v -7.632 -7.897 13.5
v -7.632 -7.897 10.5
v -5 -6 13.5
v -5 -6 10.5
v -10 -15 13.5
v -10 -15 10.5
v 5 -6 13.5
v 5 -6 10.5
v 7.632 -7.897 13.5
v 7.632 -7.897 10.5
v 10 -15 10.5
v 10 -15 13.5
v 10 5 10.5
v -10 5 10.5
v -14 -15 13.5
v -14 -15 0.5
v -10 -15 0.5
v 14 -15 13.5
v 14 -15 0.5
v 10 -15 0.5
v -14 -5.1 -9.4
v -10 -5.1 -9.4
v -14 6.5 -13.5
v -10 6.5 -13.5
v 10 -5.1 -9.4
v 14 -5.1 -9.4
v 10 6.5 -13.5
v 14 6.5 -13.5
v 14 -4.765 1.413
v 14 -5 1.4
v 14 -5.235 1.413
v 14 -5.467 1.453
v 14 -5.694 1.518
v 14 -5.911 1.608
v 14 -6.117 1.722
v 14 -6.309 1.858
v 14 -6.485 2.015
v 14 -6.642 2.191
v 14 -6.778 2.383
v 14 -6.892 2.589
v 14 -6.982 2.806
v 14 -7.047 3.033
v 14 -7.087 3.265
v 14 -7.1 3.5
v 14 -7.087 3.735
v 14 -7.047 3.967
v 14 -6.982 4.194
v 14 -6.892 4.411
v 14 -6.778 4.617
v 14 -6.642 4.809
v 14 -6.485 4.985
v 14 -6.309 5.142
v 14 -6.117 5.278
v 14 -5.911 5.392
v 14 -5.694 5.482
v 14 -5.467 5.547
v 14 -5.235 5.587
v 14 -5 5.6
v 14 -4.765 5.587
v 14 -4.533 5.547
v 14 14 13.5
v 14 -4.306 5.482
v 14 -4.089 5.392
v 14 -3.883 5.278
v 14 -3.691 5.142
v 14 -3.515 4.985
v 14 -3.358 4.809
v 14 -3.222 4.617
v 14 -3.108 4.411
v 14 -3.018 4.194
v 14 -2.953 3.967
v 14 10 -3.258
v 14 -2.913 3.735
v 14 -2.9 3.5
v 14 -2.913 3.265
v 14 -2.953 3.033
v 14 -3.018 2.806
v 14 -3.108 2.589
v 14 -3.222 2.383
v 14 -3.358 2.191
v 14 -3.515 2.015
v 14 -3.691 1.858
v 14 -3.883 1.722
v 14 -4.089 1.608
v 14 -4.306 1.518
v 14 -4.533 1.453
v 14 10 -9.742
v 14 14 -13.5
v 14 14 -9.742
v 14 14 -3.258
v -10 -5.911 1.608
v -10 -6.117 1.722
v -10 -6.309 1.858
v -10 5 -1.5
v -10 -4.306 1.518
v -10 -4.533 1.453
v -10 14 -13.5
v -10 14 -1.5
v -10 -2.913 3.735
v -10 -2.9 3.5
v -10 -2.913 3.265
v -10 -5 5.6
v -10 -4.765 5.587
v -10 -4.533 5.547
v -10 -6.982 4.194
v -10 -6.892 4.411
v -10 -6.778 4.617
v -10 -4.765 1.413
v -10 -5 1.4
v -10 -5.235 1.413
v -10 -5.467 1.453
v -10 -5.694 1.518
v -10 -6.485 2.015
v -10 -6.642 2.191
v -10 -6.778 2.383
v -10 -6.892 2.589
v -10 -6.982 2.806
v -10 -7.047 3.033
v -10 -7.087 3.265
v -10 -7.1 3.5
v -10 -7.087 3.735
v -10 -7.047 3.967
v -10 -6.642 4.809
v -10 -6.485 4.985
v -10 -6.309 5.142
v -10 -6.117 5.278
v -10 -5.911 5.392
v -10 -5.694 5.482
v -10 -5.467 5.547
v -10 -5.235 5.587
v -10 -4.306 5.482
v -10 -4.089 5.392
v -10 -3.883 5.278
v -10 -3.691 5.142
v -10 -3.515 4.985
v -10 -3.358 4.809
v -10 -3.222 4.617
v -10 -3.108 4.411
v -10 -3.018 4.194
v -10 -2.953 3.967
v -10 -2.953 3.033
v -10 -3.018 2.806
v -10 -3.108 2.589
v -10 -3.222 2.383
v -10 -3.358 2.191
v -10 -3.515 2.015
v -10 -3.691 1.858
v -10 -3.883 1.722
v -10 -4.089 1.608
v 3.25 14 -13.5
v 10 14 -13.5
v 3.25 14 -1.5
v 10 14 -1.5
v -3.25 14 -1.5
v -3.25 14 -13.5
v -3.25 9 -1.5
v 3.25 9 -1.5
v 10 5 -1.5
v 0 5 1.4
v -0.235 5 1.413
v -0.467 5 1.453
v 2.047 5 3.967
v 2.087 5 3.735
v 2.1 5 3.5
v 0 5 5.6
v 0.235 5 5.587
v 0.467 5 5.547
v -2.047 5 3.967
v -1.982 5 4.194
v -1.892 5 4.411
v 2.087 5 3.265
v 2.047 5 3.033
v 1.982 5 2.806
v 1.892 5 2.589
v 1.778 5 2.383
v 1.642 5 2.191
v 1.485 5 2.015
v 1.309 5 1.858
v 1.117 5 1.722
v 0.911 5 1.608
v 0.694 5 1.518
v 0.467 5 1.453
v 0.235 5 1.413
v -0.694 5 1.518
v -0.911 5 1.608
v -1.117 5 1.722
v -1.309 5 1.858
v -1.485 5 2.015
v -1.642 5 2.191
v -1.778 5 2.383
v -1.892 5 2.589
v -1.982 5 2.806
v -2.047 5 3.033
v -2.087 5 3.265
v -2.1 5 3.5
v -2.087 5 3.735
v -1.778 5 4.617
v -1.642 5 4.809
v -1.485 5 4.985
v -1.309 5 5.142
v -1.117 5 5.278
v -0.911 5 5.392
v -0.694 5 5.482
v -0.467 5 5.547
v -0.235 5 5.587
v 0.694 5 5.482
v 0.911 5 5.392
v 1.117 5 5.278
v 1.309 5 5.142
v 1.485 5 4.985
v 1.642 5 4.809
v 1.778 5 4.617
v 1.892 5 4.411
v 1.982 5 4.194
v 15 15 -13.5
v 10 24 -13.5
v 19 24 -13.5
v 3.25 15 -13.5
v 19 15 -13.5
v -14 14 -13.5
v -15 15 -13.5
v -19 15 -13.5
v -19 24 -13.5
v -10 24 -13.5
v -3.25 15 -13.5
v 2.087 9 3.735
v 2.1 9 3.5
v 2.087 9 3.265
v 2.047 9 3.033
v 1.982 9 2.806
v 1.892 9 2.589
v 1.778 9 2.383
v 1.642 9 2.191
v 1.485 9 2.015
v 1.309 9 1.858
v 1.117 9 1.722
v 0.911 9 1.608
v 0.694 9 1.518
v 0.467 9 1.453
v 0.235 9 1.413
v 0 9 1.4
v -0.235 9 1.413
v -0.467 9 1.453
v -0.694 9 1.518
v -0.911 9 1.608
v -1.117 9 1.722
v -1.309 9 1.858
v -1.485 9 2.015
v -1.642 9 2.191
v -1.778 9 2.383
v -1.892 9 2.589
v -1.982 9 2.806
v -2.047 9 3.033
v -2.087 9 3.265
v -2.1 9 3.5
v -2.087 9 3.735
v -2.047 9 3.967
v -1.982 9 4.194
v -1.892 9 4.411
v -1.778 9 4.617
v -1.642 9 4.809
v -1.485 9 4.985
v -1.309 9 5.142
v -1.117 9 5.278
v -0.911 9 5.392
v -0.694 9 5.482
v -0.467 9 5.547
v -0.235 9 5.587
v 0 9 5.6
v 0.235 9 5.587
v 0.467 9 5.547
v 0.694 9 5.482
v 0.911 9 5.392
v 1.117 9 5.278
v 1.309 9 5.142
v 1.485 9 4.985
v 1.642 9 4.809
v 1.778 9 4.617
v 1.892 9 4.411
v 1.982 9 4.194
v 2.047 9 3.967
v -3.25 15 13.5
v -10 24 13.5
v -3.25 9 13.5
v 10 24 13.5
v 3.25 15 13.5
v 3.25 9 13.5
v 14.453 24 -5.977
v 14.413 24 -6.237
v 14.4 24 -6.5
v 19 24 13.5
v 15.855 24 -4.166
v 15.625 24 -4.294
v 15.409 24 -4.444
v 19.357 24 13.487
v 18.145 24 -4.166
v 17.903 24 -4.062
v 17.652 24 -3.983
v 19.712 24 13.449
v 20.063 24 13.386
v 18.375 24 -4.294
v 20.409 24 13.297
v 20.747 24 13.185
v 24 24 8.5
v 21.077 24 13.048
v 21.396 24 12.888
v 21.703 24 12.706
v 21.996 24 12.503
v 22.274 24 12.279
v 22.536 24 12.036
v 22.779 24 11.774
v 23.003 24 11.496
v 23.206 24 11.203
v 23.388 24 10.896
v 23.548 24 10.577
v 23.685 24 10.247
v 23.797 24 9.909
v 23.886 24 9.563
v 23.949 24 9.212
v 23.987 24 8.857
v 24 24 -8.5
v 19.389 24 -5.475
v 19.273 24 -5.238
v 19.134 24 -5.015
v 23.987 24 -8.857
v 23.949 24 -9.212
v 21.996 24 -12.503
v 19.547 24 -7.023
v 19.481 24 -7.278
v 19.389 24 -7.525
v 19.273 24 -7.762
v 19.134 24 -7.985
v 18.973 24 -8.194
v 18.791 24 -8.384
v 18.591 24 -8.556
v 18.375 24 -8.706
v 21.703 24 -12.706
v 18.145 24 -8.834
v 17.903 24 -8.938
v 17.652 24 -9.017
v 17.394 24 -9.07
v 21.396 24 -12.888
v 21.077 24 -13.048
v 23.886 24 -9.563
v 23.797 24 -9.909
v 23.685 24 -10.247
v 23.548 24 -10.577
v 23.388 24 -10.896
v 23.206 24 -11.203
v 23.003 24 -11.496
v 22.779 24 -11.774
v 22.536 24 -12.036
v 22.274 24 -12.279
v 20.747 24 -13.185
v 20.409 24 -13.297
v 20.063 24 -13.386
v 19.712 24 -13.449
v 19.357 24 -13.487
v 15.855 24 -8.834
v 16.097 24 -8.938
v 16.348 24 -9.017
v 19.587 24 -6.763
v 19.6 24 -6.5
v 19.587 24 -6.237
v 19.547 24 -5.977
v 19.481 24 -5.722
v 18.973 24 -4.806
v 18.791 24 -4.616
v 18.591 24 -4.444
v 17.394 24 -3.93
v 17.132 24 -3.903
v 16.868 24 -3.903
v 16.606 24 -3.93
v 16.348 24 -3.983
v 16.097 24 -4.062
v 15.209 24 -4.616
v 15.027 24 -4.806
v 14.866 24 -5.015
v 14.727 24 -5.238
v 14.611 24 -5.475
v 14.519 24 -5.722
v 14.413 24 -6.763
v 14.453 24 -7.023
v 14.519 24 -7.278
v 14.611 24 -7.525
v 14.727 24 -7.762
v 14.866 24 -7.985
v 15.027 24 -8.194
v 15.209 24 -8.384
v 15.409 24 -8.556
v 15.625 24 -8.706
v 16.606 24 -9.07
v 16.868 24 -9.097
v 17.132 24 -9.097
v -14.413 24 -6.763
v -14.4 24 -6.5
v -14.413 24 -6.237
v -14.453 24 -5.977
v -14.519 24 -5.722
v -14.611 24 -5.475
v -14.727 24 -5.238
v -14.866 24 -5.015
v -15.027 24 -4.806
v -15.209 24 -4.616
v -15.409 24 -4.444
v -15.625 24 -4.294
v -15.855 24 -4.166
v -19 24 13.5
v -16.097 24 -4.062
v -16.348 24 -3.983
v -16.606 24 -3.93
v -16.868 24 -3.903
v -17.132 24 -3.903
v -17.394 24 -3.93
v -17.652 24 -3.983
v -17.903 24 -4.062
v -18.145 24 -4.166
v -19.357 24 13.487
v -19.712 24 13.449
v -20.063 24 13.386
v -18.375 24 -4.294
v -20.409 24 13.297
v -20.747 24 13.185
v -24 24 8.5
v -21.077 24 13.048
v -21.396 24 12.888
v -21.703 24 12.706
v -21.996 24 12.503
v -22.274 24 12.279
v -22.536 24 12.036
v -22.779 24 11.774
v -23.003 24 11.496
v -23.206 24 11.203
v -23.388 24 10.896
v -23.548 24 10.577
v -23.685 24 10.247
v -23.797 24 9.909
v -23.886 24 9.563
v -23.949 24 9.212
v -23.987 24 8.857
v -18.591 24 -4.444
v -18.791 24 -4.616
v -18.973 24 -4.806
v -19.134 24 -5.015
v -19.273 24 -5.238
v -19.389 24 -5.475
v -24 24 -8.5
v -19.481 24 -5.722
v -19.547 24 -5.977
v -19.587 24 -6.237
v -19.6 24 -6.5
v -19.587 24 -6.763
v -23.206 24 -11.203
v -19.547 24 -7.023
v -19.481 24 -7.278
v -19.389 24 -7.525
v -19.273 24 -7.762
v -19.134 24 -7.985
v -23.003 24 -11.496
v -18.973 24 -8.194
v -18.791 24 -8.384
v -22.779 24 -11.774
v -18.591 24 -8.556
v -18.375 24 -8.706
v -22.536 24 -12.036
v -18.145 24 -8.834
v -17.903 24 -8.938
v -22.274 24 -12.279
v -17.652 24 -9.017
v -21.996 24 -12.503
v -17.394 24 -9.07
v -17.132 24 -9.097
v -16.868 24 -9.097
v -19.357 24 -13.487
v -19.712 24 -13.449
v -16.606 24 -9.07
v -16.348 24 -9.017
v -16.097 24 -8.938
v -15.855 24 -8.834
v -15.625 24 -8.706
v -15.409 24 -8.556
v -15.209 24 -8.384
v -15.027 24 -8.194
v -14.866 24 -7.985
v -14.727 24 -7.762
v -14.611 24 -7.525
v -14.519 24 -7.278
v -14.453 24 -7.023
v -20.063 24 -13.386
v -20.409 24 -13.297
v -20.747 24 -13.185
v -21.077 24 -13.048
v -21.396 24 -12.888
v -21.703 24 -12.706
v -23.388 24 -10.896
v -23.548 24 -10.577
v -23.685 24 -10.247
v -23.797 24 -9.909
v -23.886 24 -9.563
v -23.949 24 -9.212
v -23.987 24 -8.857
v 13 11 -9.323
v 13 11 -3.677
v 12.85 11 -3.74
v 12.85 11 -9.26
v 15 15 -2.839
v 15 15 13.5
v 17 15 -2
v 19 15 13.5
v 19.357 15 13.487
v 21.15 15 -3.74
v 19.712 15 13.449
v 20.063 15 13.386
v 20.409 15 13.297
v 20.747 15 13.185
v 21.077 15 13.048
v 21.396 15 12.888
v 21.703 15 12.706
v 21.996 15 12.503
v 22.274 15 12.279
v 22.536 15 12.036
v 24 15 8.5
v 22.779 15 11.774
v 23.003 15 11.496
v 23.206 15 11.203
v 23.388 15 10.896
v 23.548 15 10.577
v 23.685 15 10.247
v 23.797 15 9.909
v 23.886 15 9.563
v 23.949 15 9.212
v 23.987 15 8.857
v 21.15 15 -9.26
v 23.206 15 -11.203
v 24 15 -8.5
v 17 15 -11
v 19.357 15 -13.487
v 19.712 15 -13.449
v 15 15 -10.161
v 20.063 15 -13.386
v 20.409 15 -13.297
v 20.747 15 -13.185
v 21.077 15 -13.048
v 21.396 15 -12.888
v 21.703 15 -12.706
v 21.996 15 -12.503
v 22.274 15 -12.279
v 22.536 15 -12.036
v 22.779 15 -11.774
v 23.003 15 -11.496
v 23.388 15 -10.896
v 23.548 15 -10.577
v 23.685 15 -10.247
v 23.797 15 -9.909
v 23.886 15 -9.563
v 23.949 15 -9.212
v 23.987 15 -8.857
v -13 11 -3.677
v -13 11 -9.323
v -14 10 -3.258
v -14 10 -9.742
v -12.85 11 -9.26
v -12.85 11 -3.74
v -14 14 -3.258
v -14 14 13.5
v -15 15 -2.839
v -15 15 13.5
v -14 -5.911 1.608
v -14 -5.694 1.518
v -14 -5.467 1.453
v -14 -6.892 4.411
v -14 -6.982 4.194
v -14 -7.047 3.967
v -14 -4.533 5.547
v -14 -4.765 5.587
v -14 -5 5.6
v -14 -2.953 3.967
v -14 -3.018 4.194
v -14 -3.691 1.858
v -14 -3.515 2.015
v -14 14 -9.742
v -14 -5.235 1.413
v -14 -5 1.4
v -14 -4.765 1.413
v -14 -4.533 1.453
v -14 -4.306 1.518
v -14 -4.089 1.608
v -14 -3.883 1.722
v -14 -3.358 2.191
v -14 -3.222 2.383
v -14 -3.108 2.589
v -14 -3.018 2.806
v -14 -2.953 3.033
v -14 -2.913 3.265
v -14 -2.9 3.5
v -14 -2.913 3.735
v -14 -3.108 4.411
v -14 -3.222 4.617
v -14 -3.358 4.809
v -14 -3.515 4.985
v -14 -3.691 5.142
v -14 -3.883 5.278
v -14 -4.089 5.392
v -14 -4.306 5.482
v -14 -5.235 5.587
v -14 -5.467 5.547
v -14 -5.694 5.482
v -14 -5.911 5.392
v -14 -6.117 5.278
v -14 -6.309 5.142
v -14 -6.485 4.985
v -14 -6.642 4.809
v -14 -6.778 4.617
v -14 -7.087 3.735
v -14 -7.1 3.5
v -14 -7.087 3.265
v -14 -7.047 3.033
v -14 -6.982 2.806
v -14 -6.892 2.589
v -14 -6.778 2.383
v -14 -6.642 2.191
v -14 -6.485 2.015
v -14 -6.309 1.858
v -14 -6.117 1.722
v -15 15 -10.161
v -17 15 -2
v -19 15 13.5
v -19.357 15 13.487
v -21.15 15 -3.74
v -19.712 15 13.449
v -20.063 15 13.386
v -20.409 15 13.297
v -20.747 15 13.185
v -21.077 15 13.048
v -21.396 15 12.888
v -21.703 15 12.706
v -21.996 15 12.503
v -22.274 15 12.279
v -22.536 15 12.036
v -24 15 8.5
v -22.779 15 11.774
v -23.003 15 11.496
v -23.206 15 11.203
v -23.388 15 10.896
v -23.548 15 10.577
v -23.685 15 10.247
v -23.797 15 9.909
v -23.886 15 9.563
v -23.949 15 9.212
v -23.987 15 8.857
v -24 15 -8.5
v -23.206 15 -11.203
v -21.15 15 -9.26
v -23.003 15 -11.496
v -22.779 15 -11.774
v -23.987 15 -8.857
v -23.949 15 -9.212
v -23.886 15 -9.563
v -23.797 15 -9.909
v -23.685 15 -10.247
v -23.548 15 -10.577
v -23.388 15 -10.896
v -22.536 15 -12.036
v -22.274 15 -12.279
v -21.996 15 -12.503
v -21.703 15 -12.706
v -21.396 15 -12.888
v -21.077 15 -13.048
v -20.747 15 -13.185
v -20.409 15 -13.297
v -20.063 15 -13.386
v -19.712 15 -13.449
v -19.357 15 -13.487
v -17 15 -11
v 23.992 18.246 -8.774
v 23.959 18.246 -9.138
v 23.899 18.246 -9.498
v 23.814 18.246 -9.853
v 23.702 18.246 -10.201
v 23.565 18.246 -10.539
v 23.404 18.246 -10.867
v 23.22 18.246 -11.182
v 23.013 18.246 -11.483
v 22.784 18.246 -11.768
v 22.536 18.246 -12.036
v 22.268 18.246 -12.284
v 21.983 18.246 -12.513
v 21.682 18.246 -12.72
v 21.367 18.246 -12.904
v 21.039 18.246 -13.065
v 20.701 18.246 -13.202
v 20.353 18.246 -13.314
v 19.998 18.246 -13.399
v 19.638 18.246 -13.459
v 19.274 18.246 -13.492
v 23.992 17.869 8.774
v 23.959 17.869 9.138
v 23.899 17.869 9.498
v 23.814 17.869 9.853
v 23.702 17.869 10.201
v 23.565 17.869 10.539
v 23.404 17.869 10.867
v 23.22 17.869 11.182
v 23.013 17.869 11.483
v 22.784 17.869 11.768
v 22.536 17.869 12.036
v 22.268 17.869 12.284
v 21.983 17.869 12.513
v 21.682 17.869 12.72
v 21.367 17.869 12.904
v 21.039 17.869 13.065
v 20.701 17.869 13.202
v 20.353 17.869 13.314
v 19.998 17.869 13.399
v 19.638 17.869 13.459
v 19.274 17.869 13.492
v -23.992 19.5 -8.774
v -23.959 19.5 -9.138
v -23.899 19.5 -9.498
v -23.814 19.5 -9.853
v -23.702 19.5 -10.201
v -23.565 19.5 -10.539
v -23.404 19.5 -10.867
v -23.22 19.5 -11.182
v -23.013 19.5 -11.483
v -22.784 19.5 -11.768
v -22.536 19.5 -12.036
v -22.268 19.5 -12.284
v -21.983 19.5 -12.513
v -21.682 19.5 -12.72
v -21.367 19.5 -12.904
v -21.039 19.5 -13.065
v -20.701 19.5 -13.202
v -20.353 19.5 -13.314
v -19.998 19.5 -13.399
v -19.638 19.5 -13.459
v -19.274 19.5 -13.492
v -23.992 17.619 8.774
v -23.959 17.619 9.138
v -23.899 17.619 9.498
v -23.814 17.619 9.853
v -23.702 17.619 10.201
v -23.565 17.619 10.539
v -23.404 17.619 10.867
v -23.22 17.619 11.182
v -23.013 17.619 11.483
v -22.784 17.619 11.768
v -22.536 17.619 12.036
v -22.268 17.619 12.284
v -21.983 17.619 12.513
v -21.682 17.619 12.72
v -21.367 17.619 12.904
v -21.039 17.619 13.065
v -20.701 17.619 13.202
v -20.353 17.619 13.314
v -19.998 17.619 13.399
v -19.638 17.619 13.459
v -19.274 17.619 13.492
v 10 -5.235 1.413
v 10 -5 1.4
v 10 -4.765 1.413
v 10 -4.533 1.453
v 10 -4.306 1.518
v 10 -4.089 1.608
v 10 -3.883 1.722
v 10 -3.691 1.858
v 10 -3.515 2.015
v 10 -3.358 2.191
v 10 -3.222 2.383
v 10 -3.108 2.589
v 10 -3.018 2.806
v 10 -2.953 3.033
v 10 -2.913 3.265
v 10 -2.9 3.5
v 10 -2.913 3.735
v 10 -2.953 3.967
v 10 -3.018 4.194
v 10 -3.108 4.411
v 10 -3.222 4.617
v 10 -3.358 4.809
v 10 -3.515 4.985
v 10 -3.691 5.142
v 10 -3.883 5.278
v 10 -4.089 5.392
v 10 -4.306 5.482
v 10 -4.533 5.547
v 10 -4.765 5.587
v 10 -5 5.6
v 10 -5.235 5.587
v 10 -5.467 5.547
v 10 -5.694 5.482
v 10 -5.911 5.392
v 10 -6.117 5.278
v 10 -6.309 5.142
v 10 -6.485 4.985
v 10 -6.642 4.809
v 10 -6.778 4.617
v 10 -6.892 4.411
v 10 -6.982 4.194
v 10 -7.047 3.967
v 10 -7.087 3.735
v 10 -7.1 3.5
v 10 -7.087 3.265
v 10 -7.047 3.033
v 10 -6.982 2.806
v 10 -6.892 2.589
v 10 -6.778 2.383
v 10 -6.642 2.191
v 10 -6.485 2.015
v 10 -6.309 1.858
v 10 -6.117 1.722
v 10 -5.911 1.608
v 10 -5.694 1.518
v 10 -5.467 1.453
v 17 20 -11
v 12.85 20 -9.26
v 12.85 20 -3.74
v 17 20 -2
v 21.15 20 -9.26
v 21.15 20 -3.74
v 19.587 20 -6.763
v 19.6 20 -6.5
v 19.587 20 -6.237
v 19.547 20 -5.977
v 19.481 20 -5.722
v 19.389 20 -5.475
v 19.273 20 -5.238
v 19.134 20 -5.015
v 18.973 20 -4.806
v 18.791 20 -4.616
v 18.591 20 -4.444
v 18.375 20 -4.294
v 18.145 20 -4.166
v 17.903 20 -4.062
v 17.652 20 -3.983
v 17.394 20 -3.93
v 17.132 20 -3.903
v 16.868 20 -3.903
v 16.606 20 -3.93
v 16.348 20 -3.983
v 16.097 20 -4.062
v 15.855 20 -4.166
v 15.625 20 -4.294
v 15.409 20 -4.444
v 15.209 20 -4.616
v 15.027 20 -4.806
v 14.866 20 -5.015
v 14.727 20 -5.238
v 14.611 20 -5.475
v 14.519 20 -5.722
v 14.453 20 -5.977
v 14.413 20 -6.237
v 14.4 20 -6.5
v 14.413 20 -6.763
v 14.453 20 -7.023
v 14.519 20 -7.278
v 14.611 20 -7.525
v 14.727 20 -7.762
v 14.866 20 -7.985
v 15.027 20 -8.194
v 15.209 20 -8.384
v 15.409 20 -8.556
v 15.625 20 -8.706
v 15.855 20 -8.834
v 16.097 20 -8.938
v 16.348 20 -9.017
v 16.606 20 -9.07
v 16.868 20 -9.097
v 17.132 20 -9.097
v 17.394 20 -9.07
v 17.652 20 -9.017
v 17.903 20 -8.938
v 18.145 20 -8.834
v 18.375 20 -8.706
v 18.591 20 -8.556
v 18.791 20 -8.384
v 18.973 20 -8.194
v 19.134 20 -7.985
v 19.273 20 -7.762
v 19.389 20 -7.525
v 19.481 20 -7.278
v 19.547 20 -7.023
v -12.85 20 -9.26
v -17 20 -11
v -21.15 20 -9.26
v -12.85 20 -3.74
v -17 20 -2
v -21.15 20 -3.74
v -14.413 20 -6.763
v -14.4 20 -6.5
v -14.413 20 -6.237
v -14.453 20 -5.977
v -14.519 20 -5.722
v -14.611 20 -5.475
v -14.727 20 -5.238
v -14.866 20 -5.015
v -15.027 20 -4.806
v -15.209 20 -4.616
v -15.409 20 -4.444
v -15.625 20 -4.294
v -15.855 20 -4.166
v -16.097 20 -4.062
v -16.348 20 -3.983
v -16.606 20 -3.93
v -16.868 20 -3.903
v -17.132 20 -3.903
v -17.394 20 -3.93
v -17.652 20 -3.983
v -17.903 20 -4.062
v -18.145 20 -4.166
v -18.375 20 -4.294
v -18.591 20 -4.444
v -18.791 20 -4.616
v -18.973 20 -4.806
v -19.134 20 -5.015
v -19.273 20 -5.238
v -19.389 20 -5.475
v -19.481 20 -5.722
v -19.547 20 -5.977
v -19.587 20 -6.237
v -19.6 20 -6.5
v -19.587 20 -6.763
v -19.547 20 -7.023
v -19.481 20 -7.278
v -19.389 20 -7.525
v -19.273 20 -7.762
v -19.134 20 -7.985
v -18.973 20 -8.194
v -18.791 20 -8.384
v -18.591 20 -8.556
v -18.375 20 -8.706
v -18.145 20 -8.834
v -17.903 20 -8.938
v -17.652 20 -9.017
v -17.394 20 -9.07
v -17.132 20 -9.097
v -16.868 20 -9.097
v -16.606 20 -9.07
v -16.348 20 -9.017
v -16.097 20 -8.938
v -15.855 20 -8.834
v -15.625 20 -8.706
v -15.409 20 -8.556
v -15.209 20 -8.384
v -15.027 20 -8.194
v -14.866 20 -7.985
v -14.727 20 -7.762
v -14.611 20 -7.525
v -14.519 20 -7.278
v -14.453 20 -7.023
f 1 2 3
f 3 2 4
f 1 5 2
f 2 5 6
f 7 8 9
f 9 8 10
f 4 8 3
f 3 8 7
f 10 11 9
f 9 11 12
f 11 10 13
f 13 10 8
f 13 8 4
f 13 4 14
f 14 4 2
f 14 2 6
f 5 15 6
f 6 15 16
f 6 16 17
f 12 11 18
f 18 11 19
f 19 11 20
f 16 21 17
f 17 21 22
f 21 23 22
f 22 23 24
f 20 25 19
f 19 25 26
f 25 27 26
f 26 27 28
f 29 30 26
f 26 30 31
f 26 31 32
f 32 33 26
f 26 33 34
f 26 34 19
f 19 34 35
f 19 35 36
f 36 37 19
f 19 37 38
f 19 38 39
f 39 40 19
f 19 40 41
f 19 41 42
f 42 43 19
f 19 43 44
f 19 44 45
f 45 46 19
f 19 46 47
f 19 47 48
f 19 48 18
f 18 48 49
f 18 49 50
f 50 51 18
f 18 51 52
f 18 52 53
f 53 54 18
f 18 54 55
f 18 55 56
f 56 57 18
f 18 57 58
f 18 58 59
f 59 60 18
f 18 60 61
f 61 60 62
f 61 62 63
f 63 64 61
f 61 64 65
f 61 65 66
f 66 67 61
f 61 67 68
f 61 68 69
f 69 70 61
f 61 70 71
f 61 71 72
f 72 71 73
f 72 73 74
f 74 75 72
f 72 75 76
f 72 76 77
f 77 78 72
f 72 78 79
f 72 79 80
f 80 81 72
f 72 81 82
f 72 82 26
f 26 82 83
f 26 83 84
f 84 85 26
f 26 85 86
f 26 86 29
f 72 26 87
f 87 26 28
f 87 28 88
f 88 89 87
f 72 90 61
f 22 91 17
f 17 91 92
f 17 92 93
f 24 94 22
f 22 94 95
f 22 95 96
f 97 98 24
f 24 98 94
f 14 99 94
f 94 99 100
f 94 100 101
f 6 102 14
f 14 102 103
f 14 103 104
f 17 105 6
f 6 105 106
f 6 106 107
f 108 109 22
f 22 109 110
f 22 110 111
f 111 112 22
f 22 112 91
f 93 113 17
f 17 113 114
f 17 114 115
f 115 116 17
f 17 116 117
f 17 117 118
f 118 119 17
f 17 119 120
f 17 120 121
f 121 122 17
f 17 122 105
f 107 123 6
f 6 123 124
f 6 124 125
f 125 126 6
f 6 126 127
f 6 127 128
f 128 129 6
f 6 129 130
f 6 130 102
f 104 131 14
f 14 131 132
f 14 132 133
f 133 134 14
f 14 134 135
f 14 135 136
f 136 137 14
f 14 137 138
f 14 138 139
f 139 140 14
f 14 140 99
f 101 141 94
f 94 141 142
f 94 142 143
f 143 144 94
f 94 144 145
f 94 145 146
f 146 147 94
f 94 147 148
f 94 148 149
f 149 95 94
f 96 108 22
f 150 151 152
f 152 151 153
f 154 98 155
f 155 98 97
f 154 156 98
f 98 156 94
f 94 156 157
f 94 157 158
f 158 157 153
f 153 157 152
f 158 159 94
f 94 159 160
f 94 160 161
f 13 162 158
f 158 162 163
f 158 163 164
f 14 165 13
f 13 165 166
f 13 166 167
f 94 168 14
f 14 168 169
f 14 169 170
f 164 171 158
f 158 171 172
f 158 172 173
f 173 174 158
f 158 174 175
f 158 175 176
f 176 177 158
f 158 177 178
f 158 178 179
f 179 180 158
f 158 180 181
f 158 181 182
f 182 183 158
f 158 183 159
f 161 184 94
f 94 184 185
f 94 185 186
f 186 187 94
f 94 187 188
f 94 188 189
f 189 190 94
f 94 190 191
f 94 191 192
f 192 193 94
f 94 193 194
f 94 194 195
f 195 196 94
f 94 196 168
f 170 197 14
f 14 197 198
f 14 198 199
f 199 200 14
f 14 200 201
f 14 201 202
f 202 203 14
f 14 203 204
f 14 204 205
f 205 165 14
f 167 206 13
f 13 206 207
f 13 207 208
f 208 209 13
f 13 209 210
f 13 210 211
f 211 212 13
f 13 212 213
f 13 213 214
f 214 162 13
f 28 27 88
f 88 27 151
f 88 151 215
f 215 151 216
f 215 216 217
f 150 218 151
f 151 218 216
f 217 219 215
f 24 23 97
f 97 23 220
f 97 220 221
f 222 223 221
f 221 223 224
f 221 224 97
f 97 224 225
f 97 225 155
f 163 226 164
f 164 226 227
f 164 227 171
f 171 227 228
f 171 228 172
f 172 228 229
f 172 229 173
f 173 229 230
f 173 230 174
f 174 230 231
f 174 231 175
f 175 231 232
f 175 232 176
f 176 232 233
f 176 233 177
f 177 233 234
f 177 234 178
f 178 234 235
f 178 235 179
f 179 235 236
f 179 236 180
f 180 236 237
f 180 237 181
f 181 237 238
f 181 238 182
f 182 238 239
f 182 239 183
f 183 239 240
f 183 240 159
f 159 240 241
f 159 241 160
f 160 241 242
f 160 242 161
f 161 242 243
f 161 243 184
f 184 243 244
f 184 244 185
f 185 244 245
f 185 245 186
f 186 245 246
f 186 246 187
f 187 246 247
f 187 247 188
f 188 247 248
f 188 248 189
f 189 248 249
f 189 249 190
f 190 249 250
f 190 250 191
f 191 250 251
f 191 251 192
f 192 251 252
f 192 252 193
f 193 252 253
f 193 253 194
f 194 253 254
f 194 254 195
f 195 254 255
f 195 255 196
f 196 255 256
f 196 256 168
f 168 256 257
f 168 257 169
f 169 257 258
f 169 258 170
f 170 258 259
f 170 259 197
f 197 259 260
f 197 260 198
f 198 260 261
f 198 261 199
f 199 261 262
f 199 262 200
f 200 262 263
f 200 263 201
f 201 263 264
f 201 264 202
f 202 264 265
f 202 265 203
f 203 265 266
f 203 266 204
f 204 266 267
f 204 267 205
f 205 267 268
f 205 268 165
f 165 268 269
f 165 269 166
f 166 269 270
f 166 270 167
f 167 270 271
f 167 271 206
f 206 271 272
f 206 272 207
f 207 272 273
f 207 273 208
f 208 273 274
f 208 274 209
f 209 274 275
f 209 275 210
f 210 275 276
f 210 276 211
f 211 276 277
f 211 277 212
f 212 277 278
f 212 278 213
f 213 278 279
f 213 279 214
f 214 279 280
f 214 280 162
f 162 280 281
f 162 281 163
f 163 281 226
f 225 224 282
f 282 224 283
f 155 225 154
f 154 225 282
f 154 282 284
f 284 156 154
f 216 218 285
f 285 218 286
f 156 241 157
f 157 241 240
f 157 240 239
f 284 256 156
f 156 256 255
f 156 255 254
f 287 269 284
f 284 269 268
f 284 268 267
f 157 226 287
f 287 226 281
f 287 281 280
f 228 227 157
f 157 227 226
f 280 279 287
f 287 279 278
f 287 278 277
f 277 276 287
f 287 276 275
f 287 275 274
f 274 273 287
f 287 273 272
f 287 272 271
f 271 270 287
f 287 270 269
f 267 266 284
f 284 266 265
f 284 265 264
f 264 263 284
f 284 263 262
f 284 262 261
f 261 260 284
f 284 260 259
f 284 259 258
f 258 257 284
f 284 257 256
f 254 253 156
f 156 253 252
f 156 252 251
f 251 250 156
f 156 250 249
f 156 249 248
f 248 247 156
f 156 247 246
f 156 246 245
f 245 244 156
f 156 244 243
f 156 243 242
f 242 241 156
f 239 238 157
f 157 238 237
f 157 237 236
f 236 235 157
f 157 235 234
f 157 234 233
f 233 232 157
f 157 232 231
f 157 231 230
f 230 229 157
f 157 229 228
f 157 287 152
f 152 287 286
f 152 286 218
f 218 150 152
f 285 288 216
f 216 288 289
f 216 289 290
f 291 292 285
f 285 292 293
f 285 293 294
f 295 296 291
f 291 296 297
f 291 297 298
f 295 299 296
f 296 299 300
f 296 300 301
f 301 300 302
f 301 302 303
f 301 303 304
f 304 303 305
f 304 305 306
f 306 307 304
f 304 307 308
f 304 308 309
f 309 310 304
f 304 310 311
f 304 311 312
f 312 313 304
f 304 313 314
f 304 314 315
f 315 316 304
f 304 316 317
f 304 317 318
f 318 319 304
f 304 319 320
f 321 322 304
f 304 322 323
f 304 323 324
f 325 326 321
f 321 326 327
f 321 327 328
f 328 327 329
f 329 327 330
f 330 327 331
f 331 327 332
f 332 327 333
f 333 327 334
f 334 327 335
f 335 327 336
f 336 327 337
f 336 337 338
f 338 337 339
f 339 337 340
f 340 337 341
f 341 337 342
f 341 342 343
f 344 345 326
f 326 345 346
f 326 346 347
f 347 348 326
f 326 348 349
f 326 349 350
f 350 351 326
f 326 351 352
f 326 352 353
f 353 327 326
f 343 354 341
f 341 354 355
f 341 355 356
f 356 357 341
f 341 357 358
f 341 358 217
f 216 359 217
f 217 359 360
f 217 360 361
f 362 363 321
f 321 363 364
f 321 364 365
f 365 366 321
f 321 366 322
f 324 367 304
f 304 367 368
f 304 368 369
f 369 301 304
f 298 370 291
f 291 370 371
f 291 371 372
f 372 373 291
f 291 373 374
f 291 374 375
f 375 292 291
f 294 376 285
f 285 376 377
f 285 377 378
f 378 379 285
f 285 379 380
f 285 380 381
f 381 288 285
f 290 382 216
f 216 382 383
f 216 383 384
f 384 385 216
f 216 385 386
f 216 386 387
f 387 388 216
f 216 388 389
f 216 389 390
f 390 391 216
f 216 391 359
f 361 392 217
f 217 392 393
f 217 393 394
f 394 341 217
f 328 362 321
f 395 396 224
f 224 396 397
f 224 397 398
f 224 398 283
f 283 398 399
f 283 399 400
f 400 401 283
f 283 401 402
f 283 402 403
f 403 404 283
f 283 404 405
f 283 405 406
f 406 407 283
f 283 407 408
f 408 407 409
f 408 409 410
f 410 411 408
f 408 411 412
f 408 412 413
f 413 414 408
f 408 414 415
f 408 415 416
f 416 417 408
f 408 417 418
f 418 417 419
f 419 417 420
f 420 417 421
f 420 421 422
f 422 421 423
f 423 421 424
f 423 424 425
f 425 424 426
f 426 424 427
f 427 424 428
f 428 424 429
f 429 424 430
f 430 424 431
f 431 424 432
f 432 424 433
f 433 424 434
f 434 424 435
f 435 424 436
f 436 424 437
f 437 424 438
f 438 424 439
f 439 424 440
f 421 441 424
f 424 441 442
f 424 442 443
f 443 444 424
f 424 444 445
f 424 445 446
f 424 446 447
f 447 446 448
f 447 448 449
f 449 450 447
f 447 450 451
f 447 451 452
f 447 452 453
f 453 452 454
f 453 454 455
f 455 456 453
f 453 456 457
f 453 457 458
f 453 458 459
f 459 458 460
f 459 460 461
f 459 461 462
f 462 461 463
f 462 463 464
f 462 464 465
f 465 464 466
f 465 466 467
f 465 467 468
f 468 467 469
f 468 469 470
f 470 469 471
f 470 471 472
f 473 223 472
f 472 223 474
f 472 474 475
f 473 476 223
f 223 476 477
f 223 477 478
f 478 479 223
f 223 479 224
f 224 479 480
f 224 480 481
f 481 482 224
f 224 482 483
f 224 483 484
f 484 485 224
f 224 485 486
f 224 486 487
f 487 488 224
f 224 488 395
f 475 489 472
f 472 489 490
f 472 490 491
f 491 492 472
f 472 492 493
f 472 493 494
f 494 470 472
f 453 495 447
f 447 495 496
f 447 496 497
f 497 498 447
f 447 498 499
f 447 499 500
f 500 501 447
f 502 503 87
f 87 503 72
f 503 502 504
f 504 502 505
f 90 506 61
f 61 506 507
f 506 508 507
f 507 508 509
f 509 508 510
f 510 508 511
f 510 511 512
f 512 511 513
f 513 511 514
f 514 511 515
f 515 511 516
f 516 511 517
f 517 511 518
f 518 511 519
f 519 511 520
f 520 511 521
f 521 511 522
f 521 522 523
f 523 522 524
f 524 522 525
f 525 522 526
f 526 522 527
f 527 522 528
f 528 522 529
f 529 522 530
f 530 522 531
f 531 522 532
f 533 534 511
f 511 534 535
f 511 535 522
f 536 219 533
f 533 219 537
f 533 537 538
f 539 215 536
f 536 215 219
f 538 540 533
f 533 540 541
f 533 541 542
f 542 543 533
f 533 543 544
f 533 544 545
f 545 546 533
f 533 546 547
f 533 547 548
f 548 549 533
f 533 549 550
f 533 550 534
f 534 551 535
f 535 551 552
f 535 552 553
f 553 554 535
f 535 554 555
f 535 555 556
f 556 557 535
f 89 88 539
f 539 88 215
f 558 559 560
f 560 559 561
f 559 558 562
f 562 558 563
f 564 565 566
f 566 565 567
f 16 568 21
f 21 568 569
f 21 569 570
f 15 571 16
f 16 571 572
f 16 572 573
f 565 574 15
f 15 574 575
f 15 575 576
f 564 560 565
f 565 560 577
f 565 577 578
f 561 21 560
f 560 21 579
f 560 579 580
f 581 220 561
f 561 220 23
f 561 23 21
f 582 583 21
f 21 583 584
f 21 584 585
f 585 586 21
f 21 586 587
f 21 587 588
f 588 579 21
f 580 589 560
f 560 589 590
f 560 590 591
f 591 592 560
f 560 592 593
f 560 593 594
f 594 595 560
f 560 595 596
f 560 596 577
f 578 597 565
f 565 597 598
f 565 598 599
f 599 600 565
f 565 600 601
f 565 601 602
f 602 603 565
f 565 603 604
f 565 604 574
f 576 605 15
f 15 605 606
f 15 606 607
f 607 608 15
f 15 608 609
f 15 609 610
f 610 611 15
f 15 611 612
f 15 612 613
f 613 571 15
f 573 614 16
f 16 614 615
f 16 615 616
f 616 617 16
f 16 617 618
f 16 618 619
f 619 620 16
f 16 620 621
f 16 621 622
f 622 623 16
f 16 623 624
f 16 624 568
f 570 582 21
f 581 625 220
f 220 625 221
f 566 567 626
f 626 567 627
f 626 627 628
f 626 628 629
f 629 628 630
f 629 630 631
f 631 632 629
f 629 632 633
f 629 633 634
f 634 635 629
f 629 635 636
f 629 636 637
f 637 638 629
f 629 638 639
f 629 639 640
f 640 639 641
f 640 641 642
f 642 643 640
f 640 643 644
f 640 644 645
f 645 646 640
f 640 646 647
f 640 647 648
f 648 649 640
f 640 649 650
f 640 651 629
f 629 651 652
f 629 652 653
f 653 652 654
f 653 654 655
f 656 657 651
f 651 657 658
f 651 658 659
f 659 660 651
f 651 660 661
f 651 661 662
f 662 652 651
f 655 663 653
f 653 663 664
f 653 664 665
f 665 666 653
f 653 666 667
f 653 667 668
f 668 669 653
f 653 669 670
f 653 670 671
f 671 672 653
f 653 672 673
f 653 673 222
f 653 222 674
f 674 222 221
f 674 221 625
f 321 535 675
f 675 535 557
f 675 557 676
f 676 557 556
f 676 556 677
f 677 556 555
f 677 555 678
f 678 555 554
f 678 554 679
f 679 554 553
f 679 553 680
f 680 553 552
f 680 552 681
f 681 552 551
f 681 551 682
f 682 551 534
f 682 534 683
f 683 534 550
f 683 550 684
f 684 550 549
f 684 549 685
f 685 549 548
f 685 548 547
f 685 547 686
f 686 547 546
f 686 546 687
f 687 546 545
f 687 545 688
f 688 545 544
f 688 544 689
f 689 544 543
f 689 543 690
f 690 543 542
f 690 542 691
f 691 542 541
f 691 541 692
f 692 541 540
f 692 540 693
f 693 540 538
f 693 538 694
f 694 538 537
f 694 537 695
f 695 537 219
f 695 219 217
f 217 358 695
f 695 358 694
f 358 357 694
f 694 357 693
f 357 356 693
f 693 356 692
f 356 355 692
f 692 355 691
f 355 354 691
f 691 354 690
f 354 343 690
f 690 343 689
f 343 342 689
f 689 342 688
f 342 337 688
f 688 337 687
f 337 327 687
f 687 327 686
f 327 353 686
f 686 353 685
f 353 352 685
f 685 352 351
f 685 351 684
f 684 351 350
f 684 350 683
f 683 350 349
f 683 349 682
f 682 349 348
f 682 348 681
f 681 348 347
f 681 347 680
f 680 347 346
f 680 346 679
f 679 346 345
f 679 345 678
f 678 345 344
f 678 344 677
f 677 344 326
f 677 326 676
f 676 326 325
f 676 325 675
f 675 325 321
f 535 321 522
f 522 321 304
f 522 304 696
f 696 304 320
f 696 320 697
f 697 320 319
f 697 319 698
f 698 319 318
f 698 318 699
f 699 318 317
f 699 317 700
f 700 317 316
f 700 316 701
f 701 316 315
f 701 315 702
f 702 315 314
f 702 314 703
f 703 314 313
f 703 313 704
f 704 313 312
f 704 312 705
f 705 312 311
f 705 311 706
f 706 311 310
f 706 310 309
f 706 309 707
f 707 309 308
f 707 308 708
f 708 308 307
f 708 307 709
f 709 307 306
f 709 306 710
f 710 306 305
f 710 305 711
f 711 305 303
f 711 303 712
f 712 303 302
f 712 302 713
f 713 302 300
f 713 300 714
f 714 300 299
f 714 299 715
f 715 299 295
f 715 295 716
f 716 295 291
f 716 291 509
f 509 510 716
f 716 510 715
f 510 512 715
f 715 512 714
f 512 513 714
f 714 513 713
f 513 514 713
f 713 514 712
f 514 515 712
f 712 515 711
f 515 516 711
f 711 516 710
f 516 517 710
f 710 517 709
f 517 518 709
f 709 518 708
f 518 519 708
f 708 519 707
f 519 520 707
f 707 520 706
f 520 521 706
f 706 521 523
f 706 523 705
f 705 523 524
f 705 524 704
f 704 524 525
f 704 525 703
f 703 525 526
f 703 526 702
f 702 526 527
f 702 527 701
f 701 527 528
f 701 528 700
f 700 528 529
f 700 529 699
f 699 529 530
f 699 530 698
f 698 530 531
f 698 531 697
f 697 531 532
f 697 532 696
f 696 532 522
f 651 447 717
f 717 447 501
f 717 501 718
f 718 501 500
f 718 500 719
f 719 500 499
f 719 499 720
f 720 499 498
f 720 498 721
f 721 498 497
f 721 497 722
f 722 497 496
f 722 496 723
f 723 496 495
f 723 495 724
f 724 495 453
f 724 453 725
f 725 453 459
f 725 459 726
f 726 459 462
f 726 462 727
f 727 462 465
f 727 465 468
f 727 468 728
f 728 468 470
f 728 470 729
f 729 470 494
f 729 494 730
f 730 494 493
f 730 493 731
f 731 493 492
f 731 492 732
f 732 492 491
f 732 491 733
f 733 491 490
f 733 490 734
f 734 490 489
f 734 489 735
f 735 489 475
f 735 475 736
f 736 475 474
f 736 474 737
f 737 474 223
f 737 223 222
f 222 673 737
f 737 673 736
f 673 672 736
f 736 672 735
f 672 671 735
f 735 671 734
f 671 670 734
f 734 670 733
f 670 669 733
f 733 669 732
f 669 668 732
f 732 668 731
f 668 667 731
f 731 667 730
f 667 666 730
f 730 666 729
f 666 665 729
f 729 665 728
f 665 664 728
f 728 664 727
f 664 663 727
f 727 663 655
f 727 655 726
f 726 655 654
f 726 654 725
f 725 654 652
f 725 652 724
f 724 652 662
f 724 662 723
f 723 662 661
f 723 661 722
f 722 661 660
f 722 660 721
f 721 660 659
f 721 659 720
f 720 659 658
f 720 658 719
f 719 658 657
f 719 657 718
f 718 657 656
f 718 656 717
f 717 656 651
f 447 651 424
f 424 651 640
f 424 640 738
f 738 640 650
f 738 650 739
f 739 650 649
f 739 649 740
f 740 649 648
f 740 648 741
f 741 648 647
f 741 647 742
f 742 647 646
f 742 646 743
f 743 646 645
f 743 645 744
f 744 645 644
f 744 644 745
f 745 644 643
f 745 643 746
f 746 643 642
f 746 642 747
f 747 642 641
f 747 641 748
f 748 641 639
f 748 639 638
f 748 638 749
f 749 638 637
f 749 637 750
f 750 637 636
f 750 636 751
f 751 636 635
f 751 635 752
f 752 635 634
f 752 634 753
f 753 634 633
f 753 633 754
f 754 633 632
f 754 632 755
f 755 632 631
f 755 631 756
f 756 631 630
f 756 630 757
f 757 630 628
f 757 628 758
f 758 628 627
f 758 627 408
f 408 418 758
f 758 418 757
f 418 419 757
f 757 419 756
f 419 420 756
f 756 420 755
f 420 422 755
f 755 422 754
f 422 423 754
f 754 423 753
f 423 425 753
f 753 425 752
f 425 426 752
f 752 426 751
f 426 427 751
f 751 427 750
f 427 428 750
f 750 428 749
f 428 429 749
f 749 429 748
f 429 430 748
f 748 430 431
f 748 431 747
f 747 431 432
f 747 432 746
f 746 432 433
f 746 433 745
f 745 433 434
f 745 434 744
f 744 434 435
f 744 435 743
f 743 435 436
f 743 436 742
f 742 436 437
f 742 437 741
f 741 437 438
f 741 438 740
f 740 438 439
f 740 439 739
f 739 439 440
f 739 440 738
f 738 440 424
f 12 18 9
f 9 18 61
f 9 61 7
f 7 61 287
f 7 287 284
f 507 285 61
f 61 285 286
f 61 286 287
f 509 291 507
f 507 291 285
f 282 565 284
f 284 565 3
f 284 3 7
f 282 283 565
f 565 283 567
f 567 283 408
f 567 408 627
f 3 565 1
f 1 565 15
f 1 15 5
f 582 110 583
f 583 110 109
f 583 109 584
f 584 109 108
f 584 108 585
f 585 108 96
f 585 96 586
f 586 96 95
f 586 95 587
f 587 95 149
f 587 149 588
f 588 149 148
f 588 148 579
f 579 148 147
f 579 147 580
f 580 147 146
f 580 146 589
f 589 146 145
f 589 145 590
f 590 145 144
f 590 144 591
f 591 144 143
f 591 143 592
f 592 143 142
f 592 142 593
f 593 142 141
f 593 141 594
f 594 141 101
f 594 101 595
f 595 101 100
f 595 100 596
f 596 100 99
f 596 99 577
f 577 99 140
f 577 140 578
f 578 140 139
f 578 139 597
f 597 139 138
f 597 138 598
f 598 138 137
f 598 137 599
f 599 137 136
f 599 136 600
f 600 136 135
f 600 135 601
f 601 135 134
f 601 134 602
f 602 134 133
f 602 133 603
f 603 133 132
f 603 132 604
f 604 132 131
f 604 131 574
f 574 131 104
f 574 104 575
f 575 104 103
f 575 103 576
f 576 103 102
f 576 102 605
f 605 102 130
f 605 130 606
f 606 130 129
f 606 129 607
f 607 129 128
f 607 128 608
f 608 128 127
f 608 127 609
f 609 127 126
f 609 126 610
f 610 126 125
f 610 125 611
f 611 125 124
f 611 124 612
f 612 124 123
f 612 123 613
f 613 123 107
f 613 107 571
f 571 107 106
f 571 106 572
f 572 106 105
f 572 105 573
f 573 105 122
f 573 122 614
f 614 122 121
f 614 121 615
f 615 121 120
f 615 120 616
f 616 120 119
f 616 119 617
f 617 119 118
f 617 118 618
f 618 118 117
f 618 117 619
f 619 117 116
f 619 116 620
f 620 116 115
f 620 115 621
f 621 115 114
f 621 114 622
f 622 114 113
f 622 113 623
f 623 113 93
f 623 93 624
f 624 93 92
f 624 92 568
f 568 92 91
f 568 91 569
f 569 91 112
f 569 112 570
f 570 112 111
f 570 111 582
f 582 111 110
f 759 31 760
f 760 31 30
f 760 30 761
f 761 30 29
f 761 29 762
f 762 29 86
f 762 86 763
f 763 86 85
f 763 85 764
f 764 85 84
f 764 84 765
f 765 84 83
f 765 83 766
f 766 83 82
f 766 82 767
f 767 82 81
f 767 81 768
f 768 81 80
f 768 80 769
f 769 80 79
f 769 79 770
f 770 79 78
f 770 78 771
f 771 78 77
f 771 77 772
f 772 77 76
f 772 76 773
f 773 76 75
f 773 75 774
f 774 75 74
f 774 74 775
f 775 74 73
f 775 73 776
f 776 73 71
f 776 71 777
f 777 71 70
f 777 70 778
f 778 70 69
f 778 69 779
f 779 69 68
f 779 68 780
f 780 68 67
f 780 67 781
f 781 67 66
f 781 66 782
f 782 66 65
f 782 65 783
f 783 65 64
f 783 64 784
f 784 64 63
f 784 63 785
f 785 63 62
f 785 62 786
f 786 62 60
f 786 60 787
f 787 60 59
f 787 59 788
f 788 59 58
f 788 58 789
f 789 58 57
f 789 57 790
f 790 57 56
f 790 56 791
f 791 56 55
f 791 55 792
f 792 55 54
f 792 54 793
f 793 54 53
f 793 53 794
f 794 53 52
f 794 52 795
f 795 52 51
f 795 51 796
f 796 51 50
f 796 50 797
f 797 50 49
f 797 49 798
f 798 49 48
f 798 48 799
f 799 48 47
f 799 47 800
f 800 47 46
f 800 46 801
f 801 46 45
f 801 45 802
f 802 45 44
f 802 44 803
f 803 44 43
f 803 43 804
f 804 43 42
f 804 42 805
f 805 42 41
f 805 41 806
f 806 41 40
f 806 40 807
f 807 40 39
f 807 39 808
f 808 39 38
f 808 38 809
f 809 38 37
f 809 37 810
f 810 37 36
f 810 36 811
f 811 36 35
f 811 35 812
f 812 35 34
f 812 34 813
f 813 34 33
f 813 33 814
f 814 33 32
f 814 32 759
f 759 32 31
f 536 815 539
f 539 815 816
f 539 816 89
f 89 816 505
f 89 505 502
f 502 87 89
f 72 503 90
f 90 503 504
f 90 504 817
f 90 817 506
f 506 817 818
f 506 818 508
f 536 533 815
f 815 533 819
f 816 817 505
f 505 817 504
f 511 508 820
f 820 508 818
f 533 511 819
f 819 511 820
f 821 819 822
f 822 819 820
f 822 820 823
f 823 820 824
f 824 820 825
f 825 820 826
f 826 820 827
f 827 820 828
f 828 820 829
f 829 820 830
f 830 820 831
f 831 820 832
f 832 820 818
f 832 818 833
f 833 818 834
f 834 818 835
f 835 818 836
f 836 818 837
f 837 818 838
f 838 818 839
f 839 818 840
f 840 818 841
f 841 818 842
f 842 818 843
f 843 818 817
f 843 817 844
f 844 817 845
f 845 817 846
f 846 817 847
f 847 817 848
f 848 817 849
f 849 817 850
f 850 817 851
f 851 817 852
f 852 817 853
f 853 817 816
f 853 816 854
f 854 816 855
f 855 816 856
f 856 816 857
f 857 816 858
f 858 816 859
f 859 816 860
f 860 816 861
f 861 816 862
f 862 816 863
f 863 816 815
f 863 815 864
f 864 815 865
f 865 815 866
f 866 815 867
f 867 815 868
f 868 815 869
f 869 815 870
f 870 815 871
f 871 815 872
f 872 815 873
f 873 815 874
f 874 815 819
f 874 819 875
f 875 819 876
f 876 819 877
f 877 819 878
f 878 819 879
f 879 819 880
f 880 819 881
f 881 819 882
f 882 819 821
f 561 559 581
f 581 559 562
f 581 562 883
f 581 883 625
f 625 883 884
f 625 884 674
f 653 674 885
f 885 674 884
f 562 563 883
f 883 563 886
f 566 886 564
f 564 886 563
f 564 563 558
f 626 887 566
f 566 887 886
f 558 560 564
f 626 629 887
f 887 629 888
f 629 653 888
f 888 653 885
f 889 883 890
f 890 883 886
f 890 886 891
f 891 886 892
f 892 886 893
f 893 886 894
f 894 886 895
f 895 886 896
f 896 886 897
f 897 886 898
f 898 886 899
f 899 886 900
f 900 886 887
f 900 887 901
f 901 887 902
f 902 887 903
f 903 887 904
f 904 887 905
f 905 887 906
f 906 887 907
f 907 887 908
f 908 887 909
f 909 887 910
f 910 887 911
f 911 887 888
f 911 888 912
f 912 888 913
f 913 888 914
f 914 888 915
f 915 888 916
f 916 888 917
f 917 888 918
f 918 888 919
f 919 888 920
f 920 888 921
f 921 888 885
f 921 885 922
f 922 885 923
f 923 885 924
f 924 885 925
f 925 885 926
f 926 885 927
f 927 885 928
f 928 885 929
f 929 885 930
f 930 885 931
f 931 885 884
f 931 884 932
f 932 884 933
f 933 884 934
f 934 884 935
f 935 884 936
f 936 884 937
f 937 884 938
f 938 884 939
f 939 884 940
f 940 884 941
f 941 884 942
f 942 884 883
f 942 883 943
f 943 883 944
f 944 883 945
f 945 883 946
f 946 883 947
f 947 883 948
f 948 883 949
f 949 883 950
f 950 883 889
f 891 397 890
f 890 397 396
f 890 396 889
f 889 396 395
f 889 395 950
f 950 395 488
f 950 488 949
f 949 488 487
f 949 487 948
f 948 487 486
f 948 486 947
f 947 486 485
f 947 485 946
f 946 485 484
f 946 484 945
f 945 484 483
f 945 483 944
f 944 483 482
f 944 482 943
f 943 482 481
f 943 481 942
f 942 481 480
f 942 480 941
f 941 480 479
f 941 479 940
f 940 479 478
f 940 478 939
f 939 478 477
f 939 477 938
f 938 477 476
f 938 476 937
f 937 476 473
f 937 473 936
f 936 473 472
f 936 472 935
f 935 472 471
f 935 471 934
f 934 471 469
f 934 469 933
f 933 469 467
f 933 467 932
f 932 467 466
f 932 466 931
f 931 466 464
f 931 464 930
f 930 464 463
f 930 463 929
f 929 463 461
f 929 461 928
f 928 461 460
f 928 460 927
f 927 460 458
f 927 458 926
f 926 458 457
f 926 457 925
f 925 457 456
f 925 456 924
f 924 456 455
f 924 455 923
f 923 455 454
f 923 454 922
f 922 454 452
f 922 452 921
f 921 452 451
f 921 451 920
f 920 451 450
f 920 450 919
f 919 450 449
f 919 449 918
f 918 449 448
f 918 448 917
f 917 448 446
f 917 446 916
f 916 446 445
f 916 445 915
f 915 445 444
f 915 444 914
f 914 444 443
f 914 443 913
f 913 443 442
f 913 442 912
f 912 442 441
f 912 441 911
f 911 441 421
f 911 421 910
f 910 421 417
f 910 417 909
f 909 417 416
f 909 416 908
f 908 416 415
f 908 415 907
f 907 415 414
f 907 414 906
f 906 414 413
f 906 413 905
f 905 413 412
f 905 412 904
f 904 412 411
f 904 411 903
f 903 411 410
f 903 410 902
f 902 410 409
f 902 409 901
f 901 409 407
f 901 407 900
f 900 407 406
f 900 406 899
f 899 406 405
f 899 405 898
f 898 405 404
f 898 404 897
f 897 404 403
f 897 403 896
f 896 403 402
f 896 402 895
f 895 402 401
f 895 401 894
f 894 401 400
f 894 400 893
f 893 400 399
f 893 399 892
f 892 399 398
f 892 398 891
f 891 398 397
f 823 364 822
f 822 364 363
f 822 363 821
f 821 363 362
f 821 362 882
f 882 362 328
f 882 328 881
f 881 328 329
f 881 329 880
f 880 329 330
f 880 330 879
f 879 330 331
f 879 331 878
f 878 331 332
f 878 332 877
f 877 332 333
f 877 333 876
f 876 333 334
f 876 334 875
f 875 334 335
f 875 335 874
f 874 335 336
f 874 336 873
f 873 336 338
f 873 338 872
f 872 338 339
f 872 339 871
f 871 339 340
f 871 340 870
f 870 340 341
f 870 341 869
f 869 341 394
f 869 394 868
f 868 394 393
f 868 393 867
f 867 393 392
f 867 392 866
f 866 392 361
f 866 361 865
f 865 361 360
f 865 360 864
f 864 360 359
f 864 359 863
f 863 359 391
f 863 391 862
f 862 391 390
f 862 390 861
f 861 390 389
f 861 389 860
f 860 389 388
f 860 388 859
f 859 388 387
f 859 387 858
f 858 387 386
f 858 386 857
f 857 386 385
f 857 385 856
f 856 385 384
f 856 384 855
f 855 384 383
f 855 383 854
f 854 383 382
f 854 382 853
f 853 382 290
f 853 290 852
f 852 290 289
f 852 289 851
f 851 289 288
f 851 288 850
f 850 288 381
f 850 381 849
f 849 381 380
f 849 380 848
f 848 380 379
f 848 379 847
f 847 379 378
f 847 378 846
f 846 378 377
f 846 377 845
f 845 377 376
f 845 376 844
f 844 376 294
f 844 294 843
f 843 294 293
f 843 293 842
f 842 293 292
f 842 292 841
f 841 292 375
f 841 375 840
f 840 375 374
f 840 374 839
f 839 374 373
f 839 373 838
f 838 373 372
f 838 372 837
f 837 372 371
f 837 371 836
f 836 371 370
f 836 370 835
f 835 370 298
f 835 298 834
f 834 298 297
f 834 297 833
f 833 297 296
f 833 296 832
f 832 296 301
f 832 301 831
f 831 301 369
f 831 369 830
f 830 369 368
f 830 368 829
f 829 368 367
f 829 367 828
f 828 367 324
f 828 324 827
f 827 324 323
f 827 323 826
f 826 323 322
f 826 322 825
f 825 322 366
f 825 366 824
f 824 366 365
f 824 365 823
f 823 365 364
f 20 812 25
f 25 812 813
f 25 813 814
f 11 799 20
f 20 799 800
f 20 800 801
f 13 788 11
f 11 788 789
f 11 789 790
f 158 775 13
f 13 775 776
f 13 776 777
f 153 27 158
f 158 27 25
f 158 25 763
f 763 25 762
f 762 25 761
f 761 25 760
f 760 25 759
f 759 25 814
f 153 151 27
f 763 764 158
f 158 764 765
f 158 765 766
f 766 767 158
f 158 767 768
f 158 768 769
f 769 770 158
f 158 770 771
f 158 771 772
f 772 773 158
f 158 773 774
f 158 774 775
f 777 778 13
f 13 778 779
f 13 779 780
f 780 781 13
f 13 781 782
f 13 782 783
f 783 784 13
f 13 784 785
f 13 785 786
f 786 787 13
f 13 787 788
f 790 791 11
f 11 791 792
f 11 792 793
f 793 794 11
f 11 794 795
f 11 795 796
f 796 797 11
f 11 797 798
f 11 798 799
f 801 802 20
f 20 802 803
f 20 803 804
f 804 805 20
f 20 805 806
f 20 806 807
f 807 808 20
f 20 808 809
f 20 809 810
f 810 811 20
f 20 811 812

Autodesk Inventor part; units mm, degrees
ref_plane "YZ Plane" through (0, 0, 0) normal (1, 0, 0) x (0, 1, 0)
ref_plane "XZ Plane" through (0, 0, 0) normal (0, 1, 0) x (-1, 0, 0)
ref_plane "XY Plane" through (0, 0, 0) normal (0, 0, 1) x (1, 0, 0)
sketch "Sketch1" plane through (0, 0, 0) normal (0, 0, 1) x (1, 0, 0)
  line L0 (-24, 24) -> (24, 24)
  line L1 (24, 24) -> (24, 15)
  line L2 (24, 15) -> (14, 15)
  line L3 (14, 15) -> (14, -15)
  line L4 (14, -15) -> (10, -15)
  line L5 (10, -15) -> (10, 15)
  line L6 (10, 15) -> (-10, 15)
  line L7 (-10, 15) -> (-10, -15)
  line L8 (-10, -15) -> (-14, -15)
  line L9 (-14, -15) -> (-14, 15)
  line L10 (-14, 15) -> (-24, 15)
  line L11 (-24, 15) -> (-24, 24)
  point P0 (0, 0)
  point P1 (0, 24)
  point P2 (0, 15)
  point P3 (10, 0)
  dimension "d0" = 20
  dimension "d1" = 30
  dimension "d2" = 4
  dimension "d3" = 4
  dimension "d4" = 10
  dimension "d5" = 9
extrude "Extrusion1" add sketch "Sketch1" along normal mid plane 27
sketch "Sketch2" plane through (-24, 24, 13.5) normal (0, 1, 0) x (1, 0, 0)
  circle A0 centre (7, 20) radius 2.6
  circle A1 centre (41, 20) radius 2.6
  line L0 (0, 27) -> (0, 0) projected
  line L1 (48, 0) -> (48, 27) projected
  line L2 (0, 27) -> (48, 27) projected
  point P0 (24, 13.5)
  dimension "d8" = 5.2
  dimension "d9" = 7
  dimension "d10" = 7
  dimension "d52" = 7
extrude "Extrusion2" cut sketch "Sketch2" against normal up to next
sketch "Sketch3" plane through (-24, 15, 13.5) normal (0, -1, 0) x (1, 0, 0)
  circle A0 centre (7, -20) radius 2.6 projected
  circle A1 centre (41, -20) radius 2.6 projected
  line L0 (2.85, -22.76) -> (2.85, -17.24)
  line L1 (2.85, -17.24) -> (7, -15.5)
  line L2 (7, -15.5) -> (11.15, -17.24)
  line L3 (11.15, -17.24) -> (11.15, -22.76)
  line L4 (10, 0) -> (10, -27) projected
  line L5 (11.15, -22.76) -> (7, -24.5)
  line L6 (7, -24.5) -> (2.85, -22.76)
  point P0 (24, -13.5)
  point P1 (2.85, -20)
  dimension "d13" = 8.3
  dimension "d22" = 9
  dimension "d23" = 8.3
extrude "Extrusion3" cut sketch "Sketch3" against normal blind 5 and the other way blind 4 contours A0 | L0 L1 L2 L4 L5 L6 | L4 L2 L3 L5
mirror "Mirror1" about plane through (0, 0, 0) normal (1, 0, 0) of "Extrusion3"
sketch "Sketch4" plane through (14, -15, 13.5) normal (1, 0, 0) x (0, 0, -1)
  circle A0 centre (10, 10) radius 2.1
  line L0 (0, 0) -> (27, 0) projected
  point P0 (13.5, 15)
  point P1 (13.5, 0)
  point P2 (13.5, 0)
  dimension "d24" = 4.2
  dimension "d25" = 10
extrude "Extrusion4" cut sketch "Sketch4" against normal up to surface (28 mm away)
fillet "Fillet1" radius 5 4 edges at (-24, 19.5, 13.5) (-24, 19.5, -13.5) (24, 19.5, 13.5) (24, 19.5, -13.5)
chamfer "Chamfer1" distance 1 angle 45 6 edges at (-14, 15, 5.1211) (-14, 11, -6.5) (-14, 15, -11.6211) (14, 15, 5.1211) (14, 11, -6.5) (14, 15, -11.6211)
sketch "Sketch8" plane through (0, 0, 13.5) normal (0, 0, 1) x (1, 0, 0)
  line L0 (-10, 15) -> (10, 15)
  line L1 (10, 15) -> (10, -15)
  line L2 (10, -15) -> (-10, -15)
  line L3 (-10, -15) -> (-10, 15)
  point P0 (0, 0)
extrude "Extrusion7" add sketch "Sketch8" against normal blind 3
sketch "Sketch9" plane through (0, 0, -13.5) normal (0, 0, -1) x (-1, 0, 0)
  line L0 (-10, 5) -> (10, 5)
  line L1 (10, -15) -> (14, -15) projected
  line L2 (-10, 5) -> (-10, 15)
  line L3 (-10, 15) -> (10, 15)
  line L4 (10, 15) -> (10, 5)
  point P0 (0, 0)
  dimension "d44" = 20
extrude "Extrusion8" add sketch "Sketch9" against normal up to surface (24 mm away)
sketch "Sketch6" plane through (0, 0, 13.5) normal (0, 0, 1) x (1, 0, 0)
  line L0 (-3.25, 15) -> (3.25, 15)
  line L1 (3.25, 15) -> (10, 24)
  line L2 (24, 24) -> (-24, 24) projected
  line L3 (-3.25, 15) -> (-10, 24)
  line L4 (-10, 24) -> (10, 24)
  line L5 (-14, -15) -> (-10, -15) projected
  line L6 (-10, 5) -> (10, 5) projected
  line L7 (-3.25, 15) -> (-3.25, 9)
  line L8 (-3.25, 9) -> (3.25, 9)
  line L9 (3.25, 9) -> (3.25, 15)
  point P0 (0, 0)
  point P1 (0, 15)
  point P2 (0, 24)
  point P3 (-10, 15)
  point P4 (0, 24)
  point P5 (0, 24)
  dimension "d29" = 6.5
  dimension "d30" = 20
  dimension "d47" = 9
  dimension "d48" = 4
extrude "Extrusion5" cut sketch "Sketch6" against normal up to surface (27 mm away)
sketch "Sketch11" plane through (-3.25, 9, 13.5) normal (0, 1, 0) x (1, 0, 0)
  line L0 (13.25, 7.9) -> (13.25, 12.1) projected
  line L1 (17.25, 12.1) -> (17.25, 7.9) projected
  circle A0 centre (3.25, 10) radius 2.1
  point P0 (3.25, 13.5)
  point P1 (17.25, 10)
  dimension "d49" = 4.2
extrude "Extrusion9" cut sketch "Sketch11" against normal up to next
sketch "Sketch12" plane through (0, 0, -13.5) normal (0, 0, -1) x (-1, 0, 0)
  line L0 (-10, 5) -> (10, 5)
  line L1 (10, 5) -> (10, 14)
  line L2 (10, 14) -> (-10, 14)
  line L3 (-10, 14) -> (-10, 5)
  point P0 (0, 0)
  point P1 (-10, -15)
  point P2 (10, -15)
  dimension "d53" = 9
extrude "Extrusion10" cut sketch "Sketch12" against normal blind 12
sketch "Sketch13" plane through (14, -15, 13.5) normal (1, 0, 0) x (0, 0, -1)
  line L0 (3, 0) -> (27, 0) projected
  line L1 (13, 0) -> (27, 14)
  line L2 (27, 29) -> (27, 0) projected
  line L3 (22.9, 9.9) -> (27, 21.5)
  point P0 (13.5, 15)
  dimension "d58" = 45
  dimension "d59" = 14
  dimension "d62" = 7.5
  dimension "d63" = 4.1
extrude "Extrusion11" cut sketch "Sketch13" against normal through all
sketch "Sketch14" plane through (0, 0, 13.5) normal (0, 0, 1) x (1, 0, 0)
  line L0 (10, -15) -> (7, -6)
  line L1 (7, -6) -> (-7, -6)
  line L2 (-7, -6) -> (-10, -15)
  line L3 (-14, -15) -> (14, -15) projected
  point P0 (0, 0)
  dimension "d64" = 3
  dimension "d65" = 3
  dimension "d66" = 9
extrude "Extrusion12" cut sketch "Sketch14" against normal up to next
chamfer "Chamfer2" distance 2 angle 45 2 edges at (7, -6, 12) (-7, -6, 12)
equation "\"d3\" = d2"
equation "\"d65\" = d64"
properties part number "holder-GT2-x-carriage-left"
